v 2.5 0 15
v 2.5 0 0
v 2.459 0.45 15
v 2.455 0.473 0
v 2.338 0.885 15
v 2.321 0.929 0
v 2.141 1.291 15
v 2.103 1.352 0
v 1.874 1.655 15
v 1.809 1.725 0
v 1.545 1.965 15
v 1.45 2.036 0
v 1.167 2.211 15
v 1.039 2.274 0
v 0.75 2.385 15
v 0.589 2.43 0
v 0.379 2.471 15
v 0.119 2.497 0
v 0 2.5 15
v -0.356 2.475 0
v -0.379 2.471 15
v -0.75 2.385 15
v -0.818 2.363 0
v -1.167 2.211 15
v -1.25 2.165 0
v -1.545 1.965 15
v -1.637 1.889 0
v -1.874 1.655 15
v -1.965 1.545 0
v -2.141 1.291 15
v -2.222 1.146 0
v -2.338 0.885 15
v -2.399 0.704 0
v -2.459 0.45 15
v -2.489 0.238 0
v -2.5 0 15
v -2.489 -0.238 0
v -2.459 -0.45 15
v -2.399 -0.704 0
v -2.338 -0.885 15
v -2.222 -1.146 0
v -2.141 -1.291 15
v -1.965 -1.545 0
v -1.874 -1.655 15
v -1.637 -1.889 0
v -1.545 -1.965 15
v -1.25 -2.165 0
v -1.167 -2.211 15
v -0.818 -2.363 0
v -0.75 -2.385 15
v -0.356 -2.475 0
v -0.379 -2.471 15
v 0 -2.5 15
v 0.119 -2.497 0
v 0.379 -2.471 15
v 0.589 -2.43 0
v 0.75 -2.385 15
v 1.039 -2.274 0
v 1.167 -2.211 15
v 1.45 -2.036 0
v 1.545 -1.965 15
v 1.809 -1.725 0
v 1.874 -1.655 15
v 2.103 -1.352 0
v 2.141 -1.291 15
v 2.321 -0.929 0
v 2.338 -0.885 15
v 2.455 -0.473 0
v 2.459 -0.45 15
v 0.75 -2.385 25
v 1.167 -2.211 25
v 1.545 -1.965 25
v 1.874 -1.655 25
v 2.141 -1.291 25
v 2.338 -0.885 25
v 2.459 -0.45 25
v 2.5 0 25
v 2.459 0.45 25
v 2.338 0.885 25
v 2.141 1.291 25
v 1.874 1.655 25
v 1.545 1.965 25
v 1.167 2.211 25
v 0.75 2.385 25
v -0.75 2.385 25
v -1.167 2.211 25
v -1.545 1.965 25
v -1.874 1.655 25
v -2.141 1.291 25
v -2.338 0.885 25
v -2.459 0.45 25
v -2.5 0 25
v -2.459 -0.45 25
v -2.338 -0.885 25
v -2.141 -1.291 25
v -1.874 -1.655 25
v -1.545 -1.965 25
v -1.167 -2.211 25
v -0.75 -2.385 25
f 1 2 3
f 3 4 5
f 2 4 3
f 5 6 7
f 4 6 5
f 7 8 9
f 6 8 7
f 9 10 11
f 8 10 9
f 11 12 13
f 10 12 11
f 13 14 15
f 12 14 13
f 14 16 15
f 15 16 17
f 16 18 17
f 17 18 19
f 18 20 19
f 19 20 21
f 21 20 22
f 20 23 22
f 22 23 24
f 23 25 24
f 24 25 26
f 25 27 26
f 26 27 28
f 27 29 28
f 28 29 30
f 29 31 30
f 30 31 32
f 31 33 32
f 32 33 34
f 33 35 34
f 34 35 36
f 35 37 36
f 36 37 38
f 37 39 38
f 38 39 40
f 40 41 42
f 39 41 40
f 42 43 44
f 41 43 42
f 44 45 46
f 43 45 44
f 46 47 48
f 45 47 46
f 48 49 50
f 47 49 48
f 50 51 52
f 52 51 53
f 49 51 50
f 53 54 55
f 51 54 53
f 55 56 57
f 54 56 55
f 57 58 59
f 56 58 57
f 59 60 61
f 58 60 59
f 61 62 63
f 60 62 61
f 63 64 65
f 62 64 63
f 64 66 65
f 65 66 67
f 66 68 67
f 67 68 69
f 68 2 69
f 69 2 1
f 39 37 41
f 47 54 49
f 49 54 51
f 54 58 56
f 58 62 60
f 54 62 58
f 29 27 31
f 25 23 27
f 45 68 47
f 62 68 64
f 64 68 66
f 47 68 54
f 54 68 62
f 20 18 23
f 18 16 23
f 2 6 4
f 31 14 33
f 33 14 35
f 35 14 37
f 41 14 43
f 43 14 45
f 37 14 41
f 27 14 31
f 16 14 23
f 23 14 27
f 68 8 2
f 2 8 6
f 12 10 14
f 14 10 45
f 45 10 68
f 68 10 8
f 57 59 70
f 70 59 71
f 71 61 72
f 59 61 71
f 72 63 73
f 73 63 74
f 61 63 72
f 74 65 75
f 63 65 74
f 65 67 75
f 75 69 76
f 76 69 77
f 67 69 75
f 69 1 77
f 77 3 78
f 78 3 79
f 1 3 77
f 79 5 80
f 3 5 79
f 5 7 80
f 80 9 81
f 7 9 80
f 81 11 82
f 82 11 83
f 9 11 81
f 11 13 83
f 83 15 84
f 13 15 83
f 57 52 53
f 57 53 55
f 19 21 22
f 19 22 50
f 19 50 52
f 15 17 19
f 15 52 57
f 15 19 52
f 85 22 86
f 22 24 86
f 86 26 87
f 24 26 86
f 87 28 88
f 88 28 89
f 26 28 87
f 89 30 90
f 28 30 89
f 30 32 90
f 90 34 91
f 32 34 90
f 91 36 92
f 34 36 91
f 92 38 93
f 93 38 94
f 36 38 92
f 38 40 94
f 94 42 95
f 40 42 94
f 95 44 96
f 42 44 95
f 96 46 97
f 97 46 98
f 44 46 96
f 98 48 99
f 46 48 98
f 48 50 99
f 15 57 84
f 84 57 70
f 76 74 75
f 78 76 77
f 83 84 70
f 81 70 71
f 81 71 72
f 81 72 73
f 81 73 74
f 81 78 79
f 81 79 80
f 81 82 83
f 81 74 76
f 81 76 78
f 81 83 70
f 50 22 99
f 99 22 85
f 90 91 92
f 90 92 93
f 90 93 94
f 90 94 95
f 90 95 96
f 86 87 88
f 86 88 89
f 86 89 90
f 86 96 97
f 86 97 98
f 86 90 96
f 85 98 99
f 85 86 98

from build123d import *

# Parameters (mm, degrees)
SKETCH_R     = 2.5
PAD_DEPTH    = 15
PAD001_DEPTH = 10


with BuildPart() as part:
    # Sketch → Pad (new body)
    with BuildSketch(Plane.XY):
        Circle(SKETCH_R)
    extrude(amount=PAD_DEPTH)

    # Sketch001 (on Face3 of Pad) → Pad001 (join)
    with BuildSketch(Plane.XY.offset(15)):
        with BuildLine():
            ThreePointArc((-0.75, 2.384848), (-2.5, 0), (-0.75, -2.384848))
            Line((-0.75, -2.384848), (-0.75, 2.384848))
        make_face()
        with BuildLine():
            Line((0.75, 2.384848), (0.75, -2.384848))
            ThreePointArc((0.75, -2.384848), (2.5, 0), (0.75, 2.384848))
        make_face()
    extrude(amount=PAD001_DEPTH)


solid = part.part
